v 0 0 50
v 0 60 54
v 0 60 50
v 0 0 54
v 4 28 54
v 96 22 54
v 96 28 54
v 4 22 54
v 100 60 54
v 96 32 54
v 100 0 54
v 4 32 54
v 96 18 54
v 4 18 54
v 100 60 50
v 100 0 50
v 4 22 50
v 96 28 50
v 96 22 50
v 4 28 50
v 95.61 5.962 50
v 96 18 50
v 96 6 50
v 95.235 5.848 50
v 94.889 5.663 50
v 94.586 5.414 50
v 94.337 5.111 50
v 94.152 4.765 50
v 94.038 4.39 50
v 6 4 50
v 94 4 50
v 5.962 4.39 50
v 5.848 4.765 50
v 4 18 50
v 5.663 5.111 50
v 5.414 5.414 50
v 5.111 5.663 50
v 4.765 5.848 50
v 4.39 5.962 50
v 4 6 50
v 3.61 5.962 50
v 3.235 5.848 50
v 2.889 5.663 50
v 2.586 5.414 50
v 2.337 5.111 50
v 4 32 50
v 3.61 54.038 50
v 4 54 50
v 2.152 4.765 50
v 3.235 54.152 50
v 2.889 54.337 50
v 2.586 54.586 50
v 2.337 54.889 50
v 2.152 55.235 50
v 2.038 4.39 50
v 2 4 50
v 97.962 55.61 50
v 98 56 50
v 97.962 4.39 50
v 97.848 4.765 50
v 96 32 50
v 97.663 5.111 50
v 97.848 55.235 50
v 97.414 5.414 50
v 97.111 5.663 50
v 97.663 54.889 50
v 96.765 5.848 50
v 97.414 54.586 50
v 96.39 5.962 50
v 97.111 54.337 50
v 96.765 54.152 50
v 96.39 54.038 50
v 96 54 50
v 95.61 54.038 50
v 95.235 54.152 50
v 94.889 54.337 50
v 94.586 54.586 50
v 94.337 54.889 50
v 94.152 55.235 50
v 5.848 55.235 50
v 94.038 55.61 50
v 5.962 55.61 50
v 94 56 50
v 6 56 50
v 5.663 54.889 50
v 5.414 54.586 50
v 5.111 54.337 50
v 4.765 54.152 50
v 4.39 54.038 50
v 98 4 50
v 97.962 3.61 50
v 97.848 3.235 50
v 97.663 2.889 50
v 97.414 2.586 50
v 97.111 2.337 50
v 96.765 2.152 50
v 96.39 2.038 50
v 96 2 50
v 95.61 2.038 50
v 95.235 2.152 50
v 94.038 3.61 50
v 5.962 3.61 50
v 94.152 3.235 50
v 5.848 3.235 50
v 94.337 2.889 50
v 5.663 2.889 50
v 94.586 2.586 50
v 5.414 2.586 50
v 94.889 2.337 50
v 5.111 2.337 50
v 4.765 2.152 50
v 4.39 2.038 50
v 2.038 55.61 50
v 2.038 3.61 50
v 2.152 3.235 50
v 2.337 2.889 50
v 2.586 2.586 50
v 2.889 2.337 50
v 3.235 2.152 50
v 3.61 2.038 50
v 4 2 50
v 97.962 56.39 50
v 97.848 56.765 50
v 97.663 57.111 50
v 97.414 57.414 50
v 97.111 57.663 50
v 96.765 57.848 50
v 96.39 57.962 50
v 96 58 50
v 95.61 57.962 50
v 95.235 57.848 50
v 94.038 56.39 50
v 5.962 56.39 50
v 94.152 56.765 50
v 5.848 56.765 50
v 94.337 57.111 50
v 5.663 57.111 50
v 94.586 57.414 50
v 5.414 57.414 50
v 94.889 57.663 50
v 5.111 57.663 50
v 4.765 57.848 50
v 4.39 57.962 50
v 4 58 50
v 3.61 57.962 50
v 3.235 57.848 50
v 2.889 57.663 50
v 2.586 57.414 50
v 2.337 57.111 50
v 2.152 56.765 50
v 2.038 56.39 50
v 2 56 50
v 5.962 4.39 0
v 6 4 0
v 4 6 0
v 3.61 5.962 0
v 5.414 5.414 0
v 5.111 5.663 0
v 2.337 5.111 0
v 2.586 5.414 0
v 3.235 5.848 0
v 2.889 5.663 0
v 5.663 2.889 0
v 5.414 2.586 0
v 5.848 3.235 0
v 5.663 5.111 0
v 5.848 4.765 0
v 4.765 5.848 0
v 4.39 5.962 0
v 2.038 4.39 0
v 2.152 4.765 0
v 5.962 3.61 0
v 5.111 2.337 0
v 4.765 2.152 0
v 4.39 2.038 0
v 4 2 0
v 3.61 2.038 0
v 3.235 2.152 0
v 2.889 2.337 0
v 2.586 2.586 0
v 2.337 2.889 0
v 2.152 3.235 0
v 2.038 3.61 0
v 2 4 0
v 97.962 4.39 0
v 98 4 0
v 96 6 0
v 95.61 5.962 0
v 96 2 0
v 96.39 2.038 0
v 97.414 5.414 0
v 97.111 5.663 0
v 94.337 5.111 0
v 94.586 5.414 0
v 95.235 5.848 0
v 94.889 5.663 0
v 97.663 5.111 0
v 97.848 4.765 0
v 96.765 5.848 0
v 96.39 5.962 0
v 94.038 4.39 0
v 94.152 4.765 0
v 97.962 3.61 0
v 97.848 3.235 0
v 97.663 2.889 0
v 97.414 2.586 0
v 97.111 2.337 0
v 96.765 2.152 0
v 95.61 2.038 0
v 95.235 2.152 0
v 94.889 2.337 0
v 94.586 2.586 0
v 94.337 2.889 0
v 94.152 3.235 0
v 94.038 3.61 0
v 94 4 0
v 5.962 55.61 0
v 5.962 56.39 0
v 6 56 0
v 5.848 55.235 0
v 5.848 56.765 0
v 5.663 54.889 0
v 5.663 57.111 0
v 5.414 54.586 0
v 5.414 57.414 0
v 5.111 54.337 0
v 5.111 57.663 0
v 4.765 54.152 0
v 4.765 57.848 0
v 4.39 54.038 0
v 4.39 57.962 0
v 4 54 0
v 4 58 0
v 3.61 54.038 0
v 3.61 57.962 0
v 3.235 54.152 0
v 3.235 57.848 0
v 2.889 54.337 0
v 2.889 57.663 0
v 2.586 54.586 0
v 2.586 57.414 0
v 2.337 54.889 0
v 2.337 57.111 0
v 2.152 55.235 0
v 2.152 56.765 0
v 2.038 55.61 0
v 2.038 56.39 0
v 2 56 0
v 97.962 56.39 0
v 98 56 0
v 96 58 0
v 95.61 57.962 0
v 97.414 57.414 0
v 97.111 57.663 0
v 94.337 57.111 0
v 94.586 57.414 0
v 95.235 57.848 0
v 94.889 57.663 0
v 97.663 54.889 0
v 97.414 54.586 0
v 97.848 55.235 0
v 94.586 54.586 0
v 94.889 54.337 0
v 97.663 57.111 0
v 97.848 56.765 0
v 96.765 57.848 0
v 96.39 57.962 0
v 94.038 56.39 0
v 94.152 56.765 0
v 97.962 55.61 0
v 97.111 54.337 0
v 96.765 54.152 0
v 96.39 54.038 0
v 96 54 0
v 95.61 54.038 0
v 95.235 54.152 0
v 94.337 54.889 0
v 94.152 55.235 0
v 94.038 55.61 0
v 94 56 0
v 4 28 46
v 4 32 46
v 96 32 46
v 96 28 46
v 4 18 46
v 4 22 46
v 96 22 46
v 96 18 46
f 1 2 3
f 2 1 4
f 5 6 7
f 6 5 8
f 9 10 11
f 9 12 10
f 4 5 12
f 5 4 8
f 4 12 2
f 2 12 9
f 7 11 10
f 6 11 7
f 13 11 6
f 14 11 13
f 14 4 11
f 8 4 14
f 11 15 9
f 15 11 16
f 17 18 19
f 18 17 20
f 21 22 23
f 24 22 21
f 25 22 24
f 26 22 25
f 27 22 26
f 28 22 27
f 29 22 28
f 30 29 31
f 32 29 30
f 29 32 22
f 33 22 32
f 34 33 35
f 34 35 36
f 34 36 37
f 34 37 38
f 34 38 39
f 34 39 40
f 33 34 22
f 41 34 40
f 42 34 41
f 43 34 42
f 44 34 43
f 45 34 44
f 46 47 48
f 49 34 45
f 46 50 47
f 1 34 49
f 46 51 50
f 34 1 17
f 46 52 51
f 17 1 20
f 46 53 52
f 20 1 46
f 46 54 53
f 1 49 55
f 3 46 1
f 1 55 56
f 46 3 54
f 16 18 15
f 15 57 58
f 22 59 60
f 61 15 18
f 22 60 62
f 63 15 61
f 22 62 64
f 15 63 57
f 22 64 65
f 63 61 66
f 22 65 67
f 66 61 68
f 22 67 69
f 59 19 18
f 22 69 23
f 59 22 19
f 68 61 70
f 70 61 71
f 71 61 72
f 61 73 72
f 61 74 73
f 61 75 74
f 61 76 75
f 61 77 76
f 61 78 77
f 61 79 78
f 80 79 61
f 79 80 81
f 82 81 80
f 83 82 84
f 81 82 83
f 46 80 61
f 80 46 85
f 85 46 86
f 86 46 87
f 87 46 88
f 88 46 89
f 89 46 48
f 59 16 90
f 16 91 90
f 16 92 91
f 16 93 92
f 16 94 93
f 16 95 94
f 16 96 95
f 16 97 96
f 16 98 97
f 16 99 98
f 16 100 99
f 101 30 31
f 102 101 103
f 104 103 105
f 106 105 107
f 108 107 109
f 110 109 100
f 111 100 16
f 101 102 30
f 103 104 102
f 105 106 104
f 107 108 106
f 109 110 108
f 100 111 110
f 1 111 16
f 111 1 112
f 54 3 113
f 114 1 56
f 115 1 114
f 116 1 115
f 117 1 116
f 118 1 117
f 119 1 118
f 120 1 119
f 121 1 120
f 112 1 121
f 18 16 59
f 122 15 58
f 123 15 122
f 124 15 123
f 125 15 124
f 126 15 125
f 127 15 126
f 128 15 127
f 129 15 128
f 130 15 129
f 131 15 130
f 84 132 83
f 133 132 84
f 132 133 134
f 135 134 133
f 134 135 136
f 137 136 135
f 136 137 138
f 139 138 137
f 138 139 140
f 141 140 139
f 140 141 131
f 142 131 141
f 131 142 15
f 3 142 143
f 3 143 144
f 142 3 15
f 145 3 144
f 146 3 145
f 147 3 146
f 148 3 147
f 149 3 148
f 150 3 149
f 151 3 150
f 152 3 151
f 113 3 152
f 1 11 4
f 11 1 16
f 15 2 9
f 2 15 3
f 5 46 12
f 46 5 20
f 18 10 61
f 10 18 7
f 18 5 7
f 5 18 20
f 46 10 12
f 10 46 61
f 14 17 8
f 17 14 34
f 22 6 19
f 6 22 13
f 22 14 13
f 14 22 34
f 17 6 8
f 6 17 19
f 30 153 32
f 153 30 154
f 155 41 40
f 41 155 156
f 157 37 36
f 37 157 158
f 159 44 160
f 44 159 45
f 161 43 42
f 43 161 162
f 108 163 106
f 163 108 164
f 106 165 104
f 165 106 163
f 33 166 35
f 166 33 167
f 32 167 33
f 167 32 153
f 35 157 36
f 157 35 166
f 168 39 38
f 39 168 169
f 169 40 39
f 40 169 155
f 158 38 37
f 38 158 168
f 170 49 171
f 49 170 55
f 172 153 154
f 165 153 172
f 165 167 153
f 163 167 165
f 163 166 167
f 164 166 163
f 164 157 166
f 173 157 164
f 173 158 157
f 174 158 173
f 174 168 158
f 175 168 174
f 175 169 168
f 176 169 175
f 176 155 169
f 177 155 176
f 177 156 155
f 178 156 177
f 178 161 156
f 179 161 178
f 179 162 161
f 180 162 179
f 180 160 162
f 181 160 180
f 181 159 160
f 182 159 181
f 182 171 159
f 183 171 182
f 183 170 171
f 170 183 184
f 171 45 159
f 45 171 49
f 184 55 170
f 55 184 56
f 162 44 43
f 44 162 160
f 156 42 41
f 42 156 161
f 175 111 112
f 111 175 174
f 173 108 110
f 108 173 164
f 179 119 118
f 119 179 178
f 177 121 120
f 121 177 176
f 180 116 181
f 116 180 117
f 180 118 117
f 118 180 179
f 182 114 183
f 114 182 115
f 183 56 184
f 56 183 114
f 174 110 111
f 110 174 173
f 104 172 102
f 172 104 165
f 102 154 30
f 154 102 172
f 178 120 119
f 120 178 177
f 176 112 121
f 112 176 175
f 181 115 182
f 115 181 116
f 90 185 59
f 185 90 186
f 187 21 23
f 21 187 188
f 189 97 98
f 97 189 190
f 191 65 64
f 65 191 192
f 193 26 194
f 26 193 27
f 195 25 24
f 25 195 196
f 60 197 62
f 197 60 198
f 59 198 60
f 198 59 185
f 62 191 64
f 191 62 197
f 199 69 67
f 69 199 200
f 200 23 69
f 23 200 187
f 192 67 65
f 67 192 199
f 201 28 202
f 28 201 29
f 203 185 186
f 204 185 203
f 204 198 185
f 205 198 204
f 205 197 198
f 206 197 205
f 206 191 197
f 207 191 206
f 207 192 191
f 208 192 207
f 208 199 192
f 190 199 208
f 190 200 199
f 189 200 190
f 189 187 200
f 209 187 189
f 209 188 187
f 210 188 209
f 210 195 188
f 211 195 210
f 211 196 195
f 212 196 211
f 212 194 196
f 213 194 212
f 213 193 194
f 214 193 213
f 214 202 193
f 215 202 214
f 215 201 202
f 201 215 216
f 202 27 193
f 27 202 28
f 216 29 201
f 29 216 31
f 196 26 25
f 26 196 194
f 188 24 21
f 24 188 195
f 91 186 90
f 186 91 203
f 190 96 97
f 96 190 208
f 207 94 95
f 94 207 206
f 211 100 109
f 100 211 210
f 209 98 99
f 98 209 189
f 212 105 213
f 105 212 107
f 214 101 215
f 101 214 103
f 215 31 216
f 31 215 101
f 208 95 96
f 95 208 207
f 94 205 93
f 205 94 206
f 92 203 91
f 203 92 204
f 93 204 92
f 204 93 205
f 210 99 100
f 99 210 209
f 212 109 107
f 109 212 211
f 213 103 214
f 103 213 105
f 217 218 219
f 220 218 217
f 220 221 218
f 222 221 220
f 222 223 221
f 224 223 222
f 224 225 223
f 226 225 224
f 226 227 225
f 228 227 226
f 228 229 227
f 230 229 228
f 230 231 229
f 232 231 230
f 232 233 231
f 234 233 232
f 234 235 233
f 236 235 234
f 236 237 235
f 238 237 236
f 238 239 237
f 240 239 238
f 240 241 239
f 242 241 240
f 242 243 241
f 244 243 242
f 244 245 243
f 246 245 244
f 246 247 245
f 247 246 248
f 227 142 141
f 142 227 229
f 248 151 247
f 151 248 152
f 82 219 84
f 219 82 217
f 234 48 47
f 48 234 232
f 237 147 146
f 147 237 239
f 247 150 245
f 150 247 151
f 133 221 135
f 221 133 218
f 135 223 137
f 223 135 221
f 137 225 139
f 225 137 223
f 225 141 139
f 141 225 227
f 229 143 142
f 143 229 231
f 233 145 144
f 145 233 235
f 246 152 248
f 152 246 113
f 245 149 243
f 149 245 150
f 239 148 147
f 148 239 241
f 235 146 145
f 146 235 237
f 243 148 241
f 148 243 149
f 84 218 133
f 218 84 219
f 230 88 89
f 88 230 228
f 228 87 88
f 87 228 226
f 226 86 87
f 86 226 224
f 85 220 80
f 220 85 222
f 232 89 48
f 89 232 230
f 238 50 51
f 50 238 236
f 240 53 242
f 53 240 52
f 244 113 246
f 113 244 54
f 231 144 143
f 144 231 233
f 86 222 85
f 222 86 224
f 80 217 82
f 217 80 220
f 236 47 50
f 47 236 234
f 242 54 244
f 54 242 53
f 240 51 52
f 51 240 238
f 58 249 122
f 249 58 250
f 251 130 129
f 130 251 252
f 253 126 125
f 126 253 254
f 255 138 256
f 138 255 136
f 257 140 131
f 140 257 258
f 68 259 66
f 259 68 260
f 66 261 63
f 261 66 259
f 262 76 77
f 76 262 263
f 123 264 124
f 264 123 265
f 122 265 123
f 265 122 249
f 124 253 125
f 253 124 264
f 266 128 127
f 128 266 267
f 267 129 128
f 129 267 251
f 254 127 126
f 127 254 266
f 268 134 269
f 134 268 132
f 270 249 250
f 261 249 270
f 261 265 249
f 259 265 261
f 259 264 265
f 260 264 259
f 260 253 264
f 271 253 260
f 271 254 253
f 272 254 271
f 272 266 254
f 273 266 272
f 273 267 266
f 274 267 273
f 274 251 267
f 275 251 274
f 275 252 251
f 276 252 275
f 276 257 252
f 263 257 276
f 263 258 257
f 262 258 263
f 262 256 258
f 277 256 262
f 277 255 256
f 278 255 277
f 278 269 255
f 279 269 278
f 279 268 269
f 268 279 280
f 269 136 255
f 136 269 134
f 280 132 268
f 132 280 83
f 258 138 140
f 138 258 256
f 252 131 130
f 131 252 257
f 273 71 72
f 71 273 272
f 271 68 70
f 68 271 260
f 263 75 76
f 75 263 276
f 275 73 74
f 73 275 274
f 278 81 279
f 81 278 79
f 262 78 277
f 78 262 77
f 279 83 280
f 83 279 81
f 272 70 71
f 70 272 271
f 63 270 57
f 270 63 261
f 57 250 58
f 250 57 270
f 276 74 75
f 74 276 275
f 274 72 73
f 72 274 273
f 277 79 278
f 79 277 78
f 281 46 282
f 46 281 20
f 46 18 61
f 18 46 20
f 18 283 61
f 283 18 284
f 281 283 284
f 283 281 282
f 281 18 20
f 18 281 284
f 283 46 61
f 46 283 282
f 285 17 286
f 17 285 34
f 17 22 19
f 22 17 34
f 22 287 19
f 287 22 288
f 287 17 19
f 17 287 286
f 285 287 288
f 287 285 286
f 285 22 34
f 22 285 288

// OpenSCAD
// Parameters
tabletop_length = 100;
tabletop_width = 60;
tabletop_thickness = 4;

leg_diameter = 4;
leg_height = 50;

support_bar_length = tabletop_length - 2 * leg_diameter;
support_bar_width = 4;
support_bar_height = 4;

leg_offset = 4; // distance from edge to leg center

module tabletop() {
    difference() {
        cube([tabletop_length, tabletop_width, tabletop_thickness]);
        // Slots for support bars
        translate([leg_offset, (tabletop_width - support_bar_width) / 2, 0])
            cube([support_bar_length, support_bar_width, tabletop_thickness]);
        translate([leg_offset, (tabletop_width - support_bar_width) / 2 - 10, 0])
            cube([support_bar_length, support_bar_width, tabletop_thickness]);
    }
}

module table_leg() {
    cylinder(h = leg_height, d = leg_diameter, $fn = 32);
}

module horizontal_support_bar() {
    cube([support_bar_length, support_bar_width, support_bar_height]);
}

// Assemble the table
module table() {
    // Tabletop
    translate([0, 0, leg_height])
        tabletop();

    // Legs
    translate([leg_offset, leg_offset, 0])
        table_leg();
    translate([tabletop_length - leg_offset, leg_offset, 0])
        table_leg();
    translate([leg_offset, tabletop_width - leg_offset, 0])
        table_leg();
    translate([tabletop_length - leg_offset, tabletop_width - leg_offset, 0])
        table_leg();

    // Support bars
    translate([leg_offset, (tabletop_width - support_bar_width) / 2, leg_height - support_bar_height])
        horizontal_support_bar();
    translate([leg_offset, (tabletop_width - support_bar_width) / 2 - 10, leg_height - support_bar_height])
        horizontal_support_bar();
}

// Render the table
table();
